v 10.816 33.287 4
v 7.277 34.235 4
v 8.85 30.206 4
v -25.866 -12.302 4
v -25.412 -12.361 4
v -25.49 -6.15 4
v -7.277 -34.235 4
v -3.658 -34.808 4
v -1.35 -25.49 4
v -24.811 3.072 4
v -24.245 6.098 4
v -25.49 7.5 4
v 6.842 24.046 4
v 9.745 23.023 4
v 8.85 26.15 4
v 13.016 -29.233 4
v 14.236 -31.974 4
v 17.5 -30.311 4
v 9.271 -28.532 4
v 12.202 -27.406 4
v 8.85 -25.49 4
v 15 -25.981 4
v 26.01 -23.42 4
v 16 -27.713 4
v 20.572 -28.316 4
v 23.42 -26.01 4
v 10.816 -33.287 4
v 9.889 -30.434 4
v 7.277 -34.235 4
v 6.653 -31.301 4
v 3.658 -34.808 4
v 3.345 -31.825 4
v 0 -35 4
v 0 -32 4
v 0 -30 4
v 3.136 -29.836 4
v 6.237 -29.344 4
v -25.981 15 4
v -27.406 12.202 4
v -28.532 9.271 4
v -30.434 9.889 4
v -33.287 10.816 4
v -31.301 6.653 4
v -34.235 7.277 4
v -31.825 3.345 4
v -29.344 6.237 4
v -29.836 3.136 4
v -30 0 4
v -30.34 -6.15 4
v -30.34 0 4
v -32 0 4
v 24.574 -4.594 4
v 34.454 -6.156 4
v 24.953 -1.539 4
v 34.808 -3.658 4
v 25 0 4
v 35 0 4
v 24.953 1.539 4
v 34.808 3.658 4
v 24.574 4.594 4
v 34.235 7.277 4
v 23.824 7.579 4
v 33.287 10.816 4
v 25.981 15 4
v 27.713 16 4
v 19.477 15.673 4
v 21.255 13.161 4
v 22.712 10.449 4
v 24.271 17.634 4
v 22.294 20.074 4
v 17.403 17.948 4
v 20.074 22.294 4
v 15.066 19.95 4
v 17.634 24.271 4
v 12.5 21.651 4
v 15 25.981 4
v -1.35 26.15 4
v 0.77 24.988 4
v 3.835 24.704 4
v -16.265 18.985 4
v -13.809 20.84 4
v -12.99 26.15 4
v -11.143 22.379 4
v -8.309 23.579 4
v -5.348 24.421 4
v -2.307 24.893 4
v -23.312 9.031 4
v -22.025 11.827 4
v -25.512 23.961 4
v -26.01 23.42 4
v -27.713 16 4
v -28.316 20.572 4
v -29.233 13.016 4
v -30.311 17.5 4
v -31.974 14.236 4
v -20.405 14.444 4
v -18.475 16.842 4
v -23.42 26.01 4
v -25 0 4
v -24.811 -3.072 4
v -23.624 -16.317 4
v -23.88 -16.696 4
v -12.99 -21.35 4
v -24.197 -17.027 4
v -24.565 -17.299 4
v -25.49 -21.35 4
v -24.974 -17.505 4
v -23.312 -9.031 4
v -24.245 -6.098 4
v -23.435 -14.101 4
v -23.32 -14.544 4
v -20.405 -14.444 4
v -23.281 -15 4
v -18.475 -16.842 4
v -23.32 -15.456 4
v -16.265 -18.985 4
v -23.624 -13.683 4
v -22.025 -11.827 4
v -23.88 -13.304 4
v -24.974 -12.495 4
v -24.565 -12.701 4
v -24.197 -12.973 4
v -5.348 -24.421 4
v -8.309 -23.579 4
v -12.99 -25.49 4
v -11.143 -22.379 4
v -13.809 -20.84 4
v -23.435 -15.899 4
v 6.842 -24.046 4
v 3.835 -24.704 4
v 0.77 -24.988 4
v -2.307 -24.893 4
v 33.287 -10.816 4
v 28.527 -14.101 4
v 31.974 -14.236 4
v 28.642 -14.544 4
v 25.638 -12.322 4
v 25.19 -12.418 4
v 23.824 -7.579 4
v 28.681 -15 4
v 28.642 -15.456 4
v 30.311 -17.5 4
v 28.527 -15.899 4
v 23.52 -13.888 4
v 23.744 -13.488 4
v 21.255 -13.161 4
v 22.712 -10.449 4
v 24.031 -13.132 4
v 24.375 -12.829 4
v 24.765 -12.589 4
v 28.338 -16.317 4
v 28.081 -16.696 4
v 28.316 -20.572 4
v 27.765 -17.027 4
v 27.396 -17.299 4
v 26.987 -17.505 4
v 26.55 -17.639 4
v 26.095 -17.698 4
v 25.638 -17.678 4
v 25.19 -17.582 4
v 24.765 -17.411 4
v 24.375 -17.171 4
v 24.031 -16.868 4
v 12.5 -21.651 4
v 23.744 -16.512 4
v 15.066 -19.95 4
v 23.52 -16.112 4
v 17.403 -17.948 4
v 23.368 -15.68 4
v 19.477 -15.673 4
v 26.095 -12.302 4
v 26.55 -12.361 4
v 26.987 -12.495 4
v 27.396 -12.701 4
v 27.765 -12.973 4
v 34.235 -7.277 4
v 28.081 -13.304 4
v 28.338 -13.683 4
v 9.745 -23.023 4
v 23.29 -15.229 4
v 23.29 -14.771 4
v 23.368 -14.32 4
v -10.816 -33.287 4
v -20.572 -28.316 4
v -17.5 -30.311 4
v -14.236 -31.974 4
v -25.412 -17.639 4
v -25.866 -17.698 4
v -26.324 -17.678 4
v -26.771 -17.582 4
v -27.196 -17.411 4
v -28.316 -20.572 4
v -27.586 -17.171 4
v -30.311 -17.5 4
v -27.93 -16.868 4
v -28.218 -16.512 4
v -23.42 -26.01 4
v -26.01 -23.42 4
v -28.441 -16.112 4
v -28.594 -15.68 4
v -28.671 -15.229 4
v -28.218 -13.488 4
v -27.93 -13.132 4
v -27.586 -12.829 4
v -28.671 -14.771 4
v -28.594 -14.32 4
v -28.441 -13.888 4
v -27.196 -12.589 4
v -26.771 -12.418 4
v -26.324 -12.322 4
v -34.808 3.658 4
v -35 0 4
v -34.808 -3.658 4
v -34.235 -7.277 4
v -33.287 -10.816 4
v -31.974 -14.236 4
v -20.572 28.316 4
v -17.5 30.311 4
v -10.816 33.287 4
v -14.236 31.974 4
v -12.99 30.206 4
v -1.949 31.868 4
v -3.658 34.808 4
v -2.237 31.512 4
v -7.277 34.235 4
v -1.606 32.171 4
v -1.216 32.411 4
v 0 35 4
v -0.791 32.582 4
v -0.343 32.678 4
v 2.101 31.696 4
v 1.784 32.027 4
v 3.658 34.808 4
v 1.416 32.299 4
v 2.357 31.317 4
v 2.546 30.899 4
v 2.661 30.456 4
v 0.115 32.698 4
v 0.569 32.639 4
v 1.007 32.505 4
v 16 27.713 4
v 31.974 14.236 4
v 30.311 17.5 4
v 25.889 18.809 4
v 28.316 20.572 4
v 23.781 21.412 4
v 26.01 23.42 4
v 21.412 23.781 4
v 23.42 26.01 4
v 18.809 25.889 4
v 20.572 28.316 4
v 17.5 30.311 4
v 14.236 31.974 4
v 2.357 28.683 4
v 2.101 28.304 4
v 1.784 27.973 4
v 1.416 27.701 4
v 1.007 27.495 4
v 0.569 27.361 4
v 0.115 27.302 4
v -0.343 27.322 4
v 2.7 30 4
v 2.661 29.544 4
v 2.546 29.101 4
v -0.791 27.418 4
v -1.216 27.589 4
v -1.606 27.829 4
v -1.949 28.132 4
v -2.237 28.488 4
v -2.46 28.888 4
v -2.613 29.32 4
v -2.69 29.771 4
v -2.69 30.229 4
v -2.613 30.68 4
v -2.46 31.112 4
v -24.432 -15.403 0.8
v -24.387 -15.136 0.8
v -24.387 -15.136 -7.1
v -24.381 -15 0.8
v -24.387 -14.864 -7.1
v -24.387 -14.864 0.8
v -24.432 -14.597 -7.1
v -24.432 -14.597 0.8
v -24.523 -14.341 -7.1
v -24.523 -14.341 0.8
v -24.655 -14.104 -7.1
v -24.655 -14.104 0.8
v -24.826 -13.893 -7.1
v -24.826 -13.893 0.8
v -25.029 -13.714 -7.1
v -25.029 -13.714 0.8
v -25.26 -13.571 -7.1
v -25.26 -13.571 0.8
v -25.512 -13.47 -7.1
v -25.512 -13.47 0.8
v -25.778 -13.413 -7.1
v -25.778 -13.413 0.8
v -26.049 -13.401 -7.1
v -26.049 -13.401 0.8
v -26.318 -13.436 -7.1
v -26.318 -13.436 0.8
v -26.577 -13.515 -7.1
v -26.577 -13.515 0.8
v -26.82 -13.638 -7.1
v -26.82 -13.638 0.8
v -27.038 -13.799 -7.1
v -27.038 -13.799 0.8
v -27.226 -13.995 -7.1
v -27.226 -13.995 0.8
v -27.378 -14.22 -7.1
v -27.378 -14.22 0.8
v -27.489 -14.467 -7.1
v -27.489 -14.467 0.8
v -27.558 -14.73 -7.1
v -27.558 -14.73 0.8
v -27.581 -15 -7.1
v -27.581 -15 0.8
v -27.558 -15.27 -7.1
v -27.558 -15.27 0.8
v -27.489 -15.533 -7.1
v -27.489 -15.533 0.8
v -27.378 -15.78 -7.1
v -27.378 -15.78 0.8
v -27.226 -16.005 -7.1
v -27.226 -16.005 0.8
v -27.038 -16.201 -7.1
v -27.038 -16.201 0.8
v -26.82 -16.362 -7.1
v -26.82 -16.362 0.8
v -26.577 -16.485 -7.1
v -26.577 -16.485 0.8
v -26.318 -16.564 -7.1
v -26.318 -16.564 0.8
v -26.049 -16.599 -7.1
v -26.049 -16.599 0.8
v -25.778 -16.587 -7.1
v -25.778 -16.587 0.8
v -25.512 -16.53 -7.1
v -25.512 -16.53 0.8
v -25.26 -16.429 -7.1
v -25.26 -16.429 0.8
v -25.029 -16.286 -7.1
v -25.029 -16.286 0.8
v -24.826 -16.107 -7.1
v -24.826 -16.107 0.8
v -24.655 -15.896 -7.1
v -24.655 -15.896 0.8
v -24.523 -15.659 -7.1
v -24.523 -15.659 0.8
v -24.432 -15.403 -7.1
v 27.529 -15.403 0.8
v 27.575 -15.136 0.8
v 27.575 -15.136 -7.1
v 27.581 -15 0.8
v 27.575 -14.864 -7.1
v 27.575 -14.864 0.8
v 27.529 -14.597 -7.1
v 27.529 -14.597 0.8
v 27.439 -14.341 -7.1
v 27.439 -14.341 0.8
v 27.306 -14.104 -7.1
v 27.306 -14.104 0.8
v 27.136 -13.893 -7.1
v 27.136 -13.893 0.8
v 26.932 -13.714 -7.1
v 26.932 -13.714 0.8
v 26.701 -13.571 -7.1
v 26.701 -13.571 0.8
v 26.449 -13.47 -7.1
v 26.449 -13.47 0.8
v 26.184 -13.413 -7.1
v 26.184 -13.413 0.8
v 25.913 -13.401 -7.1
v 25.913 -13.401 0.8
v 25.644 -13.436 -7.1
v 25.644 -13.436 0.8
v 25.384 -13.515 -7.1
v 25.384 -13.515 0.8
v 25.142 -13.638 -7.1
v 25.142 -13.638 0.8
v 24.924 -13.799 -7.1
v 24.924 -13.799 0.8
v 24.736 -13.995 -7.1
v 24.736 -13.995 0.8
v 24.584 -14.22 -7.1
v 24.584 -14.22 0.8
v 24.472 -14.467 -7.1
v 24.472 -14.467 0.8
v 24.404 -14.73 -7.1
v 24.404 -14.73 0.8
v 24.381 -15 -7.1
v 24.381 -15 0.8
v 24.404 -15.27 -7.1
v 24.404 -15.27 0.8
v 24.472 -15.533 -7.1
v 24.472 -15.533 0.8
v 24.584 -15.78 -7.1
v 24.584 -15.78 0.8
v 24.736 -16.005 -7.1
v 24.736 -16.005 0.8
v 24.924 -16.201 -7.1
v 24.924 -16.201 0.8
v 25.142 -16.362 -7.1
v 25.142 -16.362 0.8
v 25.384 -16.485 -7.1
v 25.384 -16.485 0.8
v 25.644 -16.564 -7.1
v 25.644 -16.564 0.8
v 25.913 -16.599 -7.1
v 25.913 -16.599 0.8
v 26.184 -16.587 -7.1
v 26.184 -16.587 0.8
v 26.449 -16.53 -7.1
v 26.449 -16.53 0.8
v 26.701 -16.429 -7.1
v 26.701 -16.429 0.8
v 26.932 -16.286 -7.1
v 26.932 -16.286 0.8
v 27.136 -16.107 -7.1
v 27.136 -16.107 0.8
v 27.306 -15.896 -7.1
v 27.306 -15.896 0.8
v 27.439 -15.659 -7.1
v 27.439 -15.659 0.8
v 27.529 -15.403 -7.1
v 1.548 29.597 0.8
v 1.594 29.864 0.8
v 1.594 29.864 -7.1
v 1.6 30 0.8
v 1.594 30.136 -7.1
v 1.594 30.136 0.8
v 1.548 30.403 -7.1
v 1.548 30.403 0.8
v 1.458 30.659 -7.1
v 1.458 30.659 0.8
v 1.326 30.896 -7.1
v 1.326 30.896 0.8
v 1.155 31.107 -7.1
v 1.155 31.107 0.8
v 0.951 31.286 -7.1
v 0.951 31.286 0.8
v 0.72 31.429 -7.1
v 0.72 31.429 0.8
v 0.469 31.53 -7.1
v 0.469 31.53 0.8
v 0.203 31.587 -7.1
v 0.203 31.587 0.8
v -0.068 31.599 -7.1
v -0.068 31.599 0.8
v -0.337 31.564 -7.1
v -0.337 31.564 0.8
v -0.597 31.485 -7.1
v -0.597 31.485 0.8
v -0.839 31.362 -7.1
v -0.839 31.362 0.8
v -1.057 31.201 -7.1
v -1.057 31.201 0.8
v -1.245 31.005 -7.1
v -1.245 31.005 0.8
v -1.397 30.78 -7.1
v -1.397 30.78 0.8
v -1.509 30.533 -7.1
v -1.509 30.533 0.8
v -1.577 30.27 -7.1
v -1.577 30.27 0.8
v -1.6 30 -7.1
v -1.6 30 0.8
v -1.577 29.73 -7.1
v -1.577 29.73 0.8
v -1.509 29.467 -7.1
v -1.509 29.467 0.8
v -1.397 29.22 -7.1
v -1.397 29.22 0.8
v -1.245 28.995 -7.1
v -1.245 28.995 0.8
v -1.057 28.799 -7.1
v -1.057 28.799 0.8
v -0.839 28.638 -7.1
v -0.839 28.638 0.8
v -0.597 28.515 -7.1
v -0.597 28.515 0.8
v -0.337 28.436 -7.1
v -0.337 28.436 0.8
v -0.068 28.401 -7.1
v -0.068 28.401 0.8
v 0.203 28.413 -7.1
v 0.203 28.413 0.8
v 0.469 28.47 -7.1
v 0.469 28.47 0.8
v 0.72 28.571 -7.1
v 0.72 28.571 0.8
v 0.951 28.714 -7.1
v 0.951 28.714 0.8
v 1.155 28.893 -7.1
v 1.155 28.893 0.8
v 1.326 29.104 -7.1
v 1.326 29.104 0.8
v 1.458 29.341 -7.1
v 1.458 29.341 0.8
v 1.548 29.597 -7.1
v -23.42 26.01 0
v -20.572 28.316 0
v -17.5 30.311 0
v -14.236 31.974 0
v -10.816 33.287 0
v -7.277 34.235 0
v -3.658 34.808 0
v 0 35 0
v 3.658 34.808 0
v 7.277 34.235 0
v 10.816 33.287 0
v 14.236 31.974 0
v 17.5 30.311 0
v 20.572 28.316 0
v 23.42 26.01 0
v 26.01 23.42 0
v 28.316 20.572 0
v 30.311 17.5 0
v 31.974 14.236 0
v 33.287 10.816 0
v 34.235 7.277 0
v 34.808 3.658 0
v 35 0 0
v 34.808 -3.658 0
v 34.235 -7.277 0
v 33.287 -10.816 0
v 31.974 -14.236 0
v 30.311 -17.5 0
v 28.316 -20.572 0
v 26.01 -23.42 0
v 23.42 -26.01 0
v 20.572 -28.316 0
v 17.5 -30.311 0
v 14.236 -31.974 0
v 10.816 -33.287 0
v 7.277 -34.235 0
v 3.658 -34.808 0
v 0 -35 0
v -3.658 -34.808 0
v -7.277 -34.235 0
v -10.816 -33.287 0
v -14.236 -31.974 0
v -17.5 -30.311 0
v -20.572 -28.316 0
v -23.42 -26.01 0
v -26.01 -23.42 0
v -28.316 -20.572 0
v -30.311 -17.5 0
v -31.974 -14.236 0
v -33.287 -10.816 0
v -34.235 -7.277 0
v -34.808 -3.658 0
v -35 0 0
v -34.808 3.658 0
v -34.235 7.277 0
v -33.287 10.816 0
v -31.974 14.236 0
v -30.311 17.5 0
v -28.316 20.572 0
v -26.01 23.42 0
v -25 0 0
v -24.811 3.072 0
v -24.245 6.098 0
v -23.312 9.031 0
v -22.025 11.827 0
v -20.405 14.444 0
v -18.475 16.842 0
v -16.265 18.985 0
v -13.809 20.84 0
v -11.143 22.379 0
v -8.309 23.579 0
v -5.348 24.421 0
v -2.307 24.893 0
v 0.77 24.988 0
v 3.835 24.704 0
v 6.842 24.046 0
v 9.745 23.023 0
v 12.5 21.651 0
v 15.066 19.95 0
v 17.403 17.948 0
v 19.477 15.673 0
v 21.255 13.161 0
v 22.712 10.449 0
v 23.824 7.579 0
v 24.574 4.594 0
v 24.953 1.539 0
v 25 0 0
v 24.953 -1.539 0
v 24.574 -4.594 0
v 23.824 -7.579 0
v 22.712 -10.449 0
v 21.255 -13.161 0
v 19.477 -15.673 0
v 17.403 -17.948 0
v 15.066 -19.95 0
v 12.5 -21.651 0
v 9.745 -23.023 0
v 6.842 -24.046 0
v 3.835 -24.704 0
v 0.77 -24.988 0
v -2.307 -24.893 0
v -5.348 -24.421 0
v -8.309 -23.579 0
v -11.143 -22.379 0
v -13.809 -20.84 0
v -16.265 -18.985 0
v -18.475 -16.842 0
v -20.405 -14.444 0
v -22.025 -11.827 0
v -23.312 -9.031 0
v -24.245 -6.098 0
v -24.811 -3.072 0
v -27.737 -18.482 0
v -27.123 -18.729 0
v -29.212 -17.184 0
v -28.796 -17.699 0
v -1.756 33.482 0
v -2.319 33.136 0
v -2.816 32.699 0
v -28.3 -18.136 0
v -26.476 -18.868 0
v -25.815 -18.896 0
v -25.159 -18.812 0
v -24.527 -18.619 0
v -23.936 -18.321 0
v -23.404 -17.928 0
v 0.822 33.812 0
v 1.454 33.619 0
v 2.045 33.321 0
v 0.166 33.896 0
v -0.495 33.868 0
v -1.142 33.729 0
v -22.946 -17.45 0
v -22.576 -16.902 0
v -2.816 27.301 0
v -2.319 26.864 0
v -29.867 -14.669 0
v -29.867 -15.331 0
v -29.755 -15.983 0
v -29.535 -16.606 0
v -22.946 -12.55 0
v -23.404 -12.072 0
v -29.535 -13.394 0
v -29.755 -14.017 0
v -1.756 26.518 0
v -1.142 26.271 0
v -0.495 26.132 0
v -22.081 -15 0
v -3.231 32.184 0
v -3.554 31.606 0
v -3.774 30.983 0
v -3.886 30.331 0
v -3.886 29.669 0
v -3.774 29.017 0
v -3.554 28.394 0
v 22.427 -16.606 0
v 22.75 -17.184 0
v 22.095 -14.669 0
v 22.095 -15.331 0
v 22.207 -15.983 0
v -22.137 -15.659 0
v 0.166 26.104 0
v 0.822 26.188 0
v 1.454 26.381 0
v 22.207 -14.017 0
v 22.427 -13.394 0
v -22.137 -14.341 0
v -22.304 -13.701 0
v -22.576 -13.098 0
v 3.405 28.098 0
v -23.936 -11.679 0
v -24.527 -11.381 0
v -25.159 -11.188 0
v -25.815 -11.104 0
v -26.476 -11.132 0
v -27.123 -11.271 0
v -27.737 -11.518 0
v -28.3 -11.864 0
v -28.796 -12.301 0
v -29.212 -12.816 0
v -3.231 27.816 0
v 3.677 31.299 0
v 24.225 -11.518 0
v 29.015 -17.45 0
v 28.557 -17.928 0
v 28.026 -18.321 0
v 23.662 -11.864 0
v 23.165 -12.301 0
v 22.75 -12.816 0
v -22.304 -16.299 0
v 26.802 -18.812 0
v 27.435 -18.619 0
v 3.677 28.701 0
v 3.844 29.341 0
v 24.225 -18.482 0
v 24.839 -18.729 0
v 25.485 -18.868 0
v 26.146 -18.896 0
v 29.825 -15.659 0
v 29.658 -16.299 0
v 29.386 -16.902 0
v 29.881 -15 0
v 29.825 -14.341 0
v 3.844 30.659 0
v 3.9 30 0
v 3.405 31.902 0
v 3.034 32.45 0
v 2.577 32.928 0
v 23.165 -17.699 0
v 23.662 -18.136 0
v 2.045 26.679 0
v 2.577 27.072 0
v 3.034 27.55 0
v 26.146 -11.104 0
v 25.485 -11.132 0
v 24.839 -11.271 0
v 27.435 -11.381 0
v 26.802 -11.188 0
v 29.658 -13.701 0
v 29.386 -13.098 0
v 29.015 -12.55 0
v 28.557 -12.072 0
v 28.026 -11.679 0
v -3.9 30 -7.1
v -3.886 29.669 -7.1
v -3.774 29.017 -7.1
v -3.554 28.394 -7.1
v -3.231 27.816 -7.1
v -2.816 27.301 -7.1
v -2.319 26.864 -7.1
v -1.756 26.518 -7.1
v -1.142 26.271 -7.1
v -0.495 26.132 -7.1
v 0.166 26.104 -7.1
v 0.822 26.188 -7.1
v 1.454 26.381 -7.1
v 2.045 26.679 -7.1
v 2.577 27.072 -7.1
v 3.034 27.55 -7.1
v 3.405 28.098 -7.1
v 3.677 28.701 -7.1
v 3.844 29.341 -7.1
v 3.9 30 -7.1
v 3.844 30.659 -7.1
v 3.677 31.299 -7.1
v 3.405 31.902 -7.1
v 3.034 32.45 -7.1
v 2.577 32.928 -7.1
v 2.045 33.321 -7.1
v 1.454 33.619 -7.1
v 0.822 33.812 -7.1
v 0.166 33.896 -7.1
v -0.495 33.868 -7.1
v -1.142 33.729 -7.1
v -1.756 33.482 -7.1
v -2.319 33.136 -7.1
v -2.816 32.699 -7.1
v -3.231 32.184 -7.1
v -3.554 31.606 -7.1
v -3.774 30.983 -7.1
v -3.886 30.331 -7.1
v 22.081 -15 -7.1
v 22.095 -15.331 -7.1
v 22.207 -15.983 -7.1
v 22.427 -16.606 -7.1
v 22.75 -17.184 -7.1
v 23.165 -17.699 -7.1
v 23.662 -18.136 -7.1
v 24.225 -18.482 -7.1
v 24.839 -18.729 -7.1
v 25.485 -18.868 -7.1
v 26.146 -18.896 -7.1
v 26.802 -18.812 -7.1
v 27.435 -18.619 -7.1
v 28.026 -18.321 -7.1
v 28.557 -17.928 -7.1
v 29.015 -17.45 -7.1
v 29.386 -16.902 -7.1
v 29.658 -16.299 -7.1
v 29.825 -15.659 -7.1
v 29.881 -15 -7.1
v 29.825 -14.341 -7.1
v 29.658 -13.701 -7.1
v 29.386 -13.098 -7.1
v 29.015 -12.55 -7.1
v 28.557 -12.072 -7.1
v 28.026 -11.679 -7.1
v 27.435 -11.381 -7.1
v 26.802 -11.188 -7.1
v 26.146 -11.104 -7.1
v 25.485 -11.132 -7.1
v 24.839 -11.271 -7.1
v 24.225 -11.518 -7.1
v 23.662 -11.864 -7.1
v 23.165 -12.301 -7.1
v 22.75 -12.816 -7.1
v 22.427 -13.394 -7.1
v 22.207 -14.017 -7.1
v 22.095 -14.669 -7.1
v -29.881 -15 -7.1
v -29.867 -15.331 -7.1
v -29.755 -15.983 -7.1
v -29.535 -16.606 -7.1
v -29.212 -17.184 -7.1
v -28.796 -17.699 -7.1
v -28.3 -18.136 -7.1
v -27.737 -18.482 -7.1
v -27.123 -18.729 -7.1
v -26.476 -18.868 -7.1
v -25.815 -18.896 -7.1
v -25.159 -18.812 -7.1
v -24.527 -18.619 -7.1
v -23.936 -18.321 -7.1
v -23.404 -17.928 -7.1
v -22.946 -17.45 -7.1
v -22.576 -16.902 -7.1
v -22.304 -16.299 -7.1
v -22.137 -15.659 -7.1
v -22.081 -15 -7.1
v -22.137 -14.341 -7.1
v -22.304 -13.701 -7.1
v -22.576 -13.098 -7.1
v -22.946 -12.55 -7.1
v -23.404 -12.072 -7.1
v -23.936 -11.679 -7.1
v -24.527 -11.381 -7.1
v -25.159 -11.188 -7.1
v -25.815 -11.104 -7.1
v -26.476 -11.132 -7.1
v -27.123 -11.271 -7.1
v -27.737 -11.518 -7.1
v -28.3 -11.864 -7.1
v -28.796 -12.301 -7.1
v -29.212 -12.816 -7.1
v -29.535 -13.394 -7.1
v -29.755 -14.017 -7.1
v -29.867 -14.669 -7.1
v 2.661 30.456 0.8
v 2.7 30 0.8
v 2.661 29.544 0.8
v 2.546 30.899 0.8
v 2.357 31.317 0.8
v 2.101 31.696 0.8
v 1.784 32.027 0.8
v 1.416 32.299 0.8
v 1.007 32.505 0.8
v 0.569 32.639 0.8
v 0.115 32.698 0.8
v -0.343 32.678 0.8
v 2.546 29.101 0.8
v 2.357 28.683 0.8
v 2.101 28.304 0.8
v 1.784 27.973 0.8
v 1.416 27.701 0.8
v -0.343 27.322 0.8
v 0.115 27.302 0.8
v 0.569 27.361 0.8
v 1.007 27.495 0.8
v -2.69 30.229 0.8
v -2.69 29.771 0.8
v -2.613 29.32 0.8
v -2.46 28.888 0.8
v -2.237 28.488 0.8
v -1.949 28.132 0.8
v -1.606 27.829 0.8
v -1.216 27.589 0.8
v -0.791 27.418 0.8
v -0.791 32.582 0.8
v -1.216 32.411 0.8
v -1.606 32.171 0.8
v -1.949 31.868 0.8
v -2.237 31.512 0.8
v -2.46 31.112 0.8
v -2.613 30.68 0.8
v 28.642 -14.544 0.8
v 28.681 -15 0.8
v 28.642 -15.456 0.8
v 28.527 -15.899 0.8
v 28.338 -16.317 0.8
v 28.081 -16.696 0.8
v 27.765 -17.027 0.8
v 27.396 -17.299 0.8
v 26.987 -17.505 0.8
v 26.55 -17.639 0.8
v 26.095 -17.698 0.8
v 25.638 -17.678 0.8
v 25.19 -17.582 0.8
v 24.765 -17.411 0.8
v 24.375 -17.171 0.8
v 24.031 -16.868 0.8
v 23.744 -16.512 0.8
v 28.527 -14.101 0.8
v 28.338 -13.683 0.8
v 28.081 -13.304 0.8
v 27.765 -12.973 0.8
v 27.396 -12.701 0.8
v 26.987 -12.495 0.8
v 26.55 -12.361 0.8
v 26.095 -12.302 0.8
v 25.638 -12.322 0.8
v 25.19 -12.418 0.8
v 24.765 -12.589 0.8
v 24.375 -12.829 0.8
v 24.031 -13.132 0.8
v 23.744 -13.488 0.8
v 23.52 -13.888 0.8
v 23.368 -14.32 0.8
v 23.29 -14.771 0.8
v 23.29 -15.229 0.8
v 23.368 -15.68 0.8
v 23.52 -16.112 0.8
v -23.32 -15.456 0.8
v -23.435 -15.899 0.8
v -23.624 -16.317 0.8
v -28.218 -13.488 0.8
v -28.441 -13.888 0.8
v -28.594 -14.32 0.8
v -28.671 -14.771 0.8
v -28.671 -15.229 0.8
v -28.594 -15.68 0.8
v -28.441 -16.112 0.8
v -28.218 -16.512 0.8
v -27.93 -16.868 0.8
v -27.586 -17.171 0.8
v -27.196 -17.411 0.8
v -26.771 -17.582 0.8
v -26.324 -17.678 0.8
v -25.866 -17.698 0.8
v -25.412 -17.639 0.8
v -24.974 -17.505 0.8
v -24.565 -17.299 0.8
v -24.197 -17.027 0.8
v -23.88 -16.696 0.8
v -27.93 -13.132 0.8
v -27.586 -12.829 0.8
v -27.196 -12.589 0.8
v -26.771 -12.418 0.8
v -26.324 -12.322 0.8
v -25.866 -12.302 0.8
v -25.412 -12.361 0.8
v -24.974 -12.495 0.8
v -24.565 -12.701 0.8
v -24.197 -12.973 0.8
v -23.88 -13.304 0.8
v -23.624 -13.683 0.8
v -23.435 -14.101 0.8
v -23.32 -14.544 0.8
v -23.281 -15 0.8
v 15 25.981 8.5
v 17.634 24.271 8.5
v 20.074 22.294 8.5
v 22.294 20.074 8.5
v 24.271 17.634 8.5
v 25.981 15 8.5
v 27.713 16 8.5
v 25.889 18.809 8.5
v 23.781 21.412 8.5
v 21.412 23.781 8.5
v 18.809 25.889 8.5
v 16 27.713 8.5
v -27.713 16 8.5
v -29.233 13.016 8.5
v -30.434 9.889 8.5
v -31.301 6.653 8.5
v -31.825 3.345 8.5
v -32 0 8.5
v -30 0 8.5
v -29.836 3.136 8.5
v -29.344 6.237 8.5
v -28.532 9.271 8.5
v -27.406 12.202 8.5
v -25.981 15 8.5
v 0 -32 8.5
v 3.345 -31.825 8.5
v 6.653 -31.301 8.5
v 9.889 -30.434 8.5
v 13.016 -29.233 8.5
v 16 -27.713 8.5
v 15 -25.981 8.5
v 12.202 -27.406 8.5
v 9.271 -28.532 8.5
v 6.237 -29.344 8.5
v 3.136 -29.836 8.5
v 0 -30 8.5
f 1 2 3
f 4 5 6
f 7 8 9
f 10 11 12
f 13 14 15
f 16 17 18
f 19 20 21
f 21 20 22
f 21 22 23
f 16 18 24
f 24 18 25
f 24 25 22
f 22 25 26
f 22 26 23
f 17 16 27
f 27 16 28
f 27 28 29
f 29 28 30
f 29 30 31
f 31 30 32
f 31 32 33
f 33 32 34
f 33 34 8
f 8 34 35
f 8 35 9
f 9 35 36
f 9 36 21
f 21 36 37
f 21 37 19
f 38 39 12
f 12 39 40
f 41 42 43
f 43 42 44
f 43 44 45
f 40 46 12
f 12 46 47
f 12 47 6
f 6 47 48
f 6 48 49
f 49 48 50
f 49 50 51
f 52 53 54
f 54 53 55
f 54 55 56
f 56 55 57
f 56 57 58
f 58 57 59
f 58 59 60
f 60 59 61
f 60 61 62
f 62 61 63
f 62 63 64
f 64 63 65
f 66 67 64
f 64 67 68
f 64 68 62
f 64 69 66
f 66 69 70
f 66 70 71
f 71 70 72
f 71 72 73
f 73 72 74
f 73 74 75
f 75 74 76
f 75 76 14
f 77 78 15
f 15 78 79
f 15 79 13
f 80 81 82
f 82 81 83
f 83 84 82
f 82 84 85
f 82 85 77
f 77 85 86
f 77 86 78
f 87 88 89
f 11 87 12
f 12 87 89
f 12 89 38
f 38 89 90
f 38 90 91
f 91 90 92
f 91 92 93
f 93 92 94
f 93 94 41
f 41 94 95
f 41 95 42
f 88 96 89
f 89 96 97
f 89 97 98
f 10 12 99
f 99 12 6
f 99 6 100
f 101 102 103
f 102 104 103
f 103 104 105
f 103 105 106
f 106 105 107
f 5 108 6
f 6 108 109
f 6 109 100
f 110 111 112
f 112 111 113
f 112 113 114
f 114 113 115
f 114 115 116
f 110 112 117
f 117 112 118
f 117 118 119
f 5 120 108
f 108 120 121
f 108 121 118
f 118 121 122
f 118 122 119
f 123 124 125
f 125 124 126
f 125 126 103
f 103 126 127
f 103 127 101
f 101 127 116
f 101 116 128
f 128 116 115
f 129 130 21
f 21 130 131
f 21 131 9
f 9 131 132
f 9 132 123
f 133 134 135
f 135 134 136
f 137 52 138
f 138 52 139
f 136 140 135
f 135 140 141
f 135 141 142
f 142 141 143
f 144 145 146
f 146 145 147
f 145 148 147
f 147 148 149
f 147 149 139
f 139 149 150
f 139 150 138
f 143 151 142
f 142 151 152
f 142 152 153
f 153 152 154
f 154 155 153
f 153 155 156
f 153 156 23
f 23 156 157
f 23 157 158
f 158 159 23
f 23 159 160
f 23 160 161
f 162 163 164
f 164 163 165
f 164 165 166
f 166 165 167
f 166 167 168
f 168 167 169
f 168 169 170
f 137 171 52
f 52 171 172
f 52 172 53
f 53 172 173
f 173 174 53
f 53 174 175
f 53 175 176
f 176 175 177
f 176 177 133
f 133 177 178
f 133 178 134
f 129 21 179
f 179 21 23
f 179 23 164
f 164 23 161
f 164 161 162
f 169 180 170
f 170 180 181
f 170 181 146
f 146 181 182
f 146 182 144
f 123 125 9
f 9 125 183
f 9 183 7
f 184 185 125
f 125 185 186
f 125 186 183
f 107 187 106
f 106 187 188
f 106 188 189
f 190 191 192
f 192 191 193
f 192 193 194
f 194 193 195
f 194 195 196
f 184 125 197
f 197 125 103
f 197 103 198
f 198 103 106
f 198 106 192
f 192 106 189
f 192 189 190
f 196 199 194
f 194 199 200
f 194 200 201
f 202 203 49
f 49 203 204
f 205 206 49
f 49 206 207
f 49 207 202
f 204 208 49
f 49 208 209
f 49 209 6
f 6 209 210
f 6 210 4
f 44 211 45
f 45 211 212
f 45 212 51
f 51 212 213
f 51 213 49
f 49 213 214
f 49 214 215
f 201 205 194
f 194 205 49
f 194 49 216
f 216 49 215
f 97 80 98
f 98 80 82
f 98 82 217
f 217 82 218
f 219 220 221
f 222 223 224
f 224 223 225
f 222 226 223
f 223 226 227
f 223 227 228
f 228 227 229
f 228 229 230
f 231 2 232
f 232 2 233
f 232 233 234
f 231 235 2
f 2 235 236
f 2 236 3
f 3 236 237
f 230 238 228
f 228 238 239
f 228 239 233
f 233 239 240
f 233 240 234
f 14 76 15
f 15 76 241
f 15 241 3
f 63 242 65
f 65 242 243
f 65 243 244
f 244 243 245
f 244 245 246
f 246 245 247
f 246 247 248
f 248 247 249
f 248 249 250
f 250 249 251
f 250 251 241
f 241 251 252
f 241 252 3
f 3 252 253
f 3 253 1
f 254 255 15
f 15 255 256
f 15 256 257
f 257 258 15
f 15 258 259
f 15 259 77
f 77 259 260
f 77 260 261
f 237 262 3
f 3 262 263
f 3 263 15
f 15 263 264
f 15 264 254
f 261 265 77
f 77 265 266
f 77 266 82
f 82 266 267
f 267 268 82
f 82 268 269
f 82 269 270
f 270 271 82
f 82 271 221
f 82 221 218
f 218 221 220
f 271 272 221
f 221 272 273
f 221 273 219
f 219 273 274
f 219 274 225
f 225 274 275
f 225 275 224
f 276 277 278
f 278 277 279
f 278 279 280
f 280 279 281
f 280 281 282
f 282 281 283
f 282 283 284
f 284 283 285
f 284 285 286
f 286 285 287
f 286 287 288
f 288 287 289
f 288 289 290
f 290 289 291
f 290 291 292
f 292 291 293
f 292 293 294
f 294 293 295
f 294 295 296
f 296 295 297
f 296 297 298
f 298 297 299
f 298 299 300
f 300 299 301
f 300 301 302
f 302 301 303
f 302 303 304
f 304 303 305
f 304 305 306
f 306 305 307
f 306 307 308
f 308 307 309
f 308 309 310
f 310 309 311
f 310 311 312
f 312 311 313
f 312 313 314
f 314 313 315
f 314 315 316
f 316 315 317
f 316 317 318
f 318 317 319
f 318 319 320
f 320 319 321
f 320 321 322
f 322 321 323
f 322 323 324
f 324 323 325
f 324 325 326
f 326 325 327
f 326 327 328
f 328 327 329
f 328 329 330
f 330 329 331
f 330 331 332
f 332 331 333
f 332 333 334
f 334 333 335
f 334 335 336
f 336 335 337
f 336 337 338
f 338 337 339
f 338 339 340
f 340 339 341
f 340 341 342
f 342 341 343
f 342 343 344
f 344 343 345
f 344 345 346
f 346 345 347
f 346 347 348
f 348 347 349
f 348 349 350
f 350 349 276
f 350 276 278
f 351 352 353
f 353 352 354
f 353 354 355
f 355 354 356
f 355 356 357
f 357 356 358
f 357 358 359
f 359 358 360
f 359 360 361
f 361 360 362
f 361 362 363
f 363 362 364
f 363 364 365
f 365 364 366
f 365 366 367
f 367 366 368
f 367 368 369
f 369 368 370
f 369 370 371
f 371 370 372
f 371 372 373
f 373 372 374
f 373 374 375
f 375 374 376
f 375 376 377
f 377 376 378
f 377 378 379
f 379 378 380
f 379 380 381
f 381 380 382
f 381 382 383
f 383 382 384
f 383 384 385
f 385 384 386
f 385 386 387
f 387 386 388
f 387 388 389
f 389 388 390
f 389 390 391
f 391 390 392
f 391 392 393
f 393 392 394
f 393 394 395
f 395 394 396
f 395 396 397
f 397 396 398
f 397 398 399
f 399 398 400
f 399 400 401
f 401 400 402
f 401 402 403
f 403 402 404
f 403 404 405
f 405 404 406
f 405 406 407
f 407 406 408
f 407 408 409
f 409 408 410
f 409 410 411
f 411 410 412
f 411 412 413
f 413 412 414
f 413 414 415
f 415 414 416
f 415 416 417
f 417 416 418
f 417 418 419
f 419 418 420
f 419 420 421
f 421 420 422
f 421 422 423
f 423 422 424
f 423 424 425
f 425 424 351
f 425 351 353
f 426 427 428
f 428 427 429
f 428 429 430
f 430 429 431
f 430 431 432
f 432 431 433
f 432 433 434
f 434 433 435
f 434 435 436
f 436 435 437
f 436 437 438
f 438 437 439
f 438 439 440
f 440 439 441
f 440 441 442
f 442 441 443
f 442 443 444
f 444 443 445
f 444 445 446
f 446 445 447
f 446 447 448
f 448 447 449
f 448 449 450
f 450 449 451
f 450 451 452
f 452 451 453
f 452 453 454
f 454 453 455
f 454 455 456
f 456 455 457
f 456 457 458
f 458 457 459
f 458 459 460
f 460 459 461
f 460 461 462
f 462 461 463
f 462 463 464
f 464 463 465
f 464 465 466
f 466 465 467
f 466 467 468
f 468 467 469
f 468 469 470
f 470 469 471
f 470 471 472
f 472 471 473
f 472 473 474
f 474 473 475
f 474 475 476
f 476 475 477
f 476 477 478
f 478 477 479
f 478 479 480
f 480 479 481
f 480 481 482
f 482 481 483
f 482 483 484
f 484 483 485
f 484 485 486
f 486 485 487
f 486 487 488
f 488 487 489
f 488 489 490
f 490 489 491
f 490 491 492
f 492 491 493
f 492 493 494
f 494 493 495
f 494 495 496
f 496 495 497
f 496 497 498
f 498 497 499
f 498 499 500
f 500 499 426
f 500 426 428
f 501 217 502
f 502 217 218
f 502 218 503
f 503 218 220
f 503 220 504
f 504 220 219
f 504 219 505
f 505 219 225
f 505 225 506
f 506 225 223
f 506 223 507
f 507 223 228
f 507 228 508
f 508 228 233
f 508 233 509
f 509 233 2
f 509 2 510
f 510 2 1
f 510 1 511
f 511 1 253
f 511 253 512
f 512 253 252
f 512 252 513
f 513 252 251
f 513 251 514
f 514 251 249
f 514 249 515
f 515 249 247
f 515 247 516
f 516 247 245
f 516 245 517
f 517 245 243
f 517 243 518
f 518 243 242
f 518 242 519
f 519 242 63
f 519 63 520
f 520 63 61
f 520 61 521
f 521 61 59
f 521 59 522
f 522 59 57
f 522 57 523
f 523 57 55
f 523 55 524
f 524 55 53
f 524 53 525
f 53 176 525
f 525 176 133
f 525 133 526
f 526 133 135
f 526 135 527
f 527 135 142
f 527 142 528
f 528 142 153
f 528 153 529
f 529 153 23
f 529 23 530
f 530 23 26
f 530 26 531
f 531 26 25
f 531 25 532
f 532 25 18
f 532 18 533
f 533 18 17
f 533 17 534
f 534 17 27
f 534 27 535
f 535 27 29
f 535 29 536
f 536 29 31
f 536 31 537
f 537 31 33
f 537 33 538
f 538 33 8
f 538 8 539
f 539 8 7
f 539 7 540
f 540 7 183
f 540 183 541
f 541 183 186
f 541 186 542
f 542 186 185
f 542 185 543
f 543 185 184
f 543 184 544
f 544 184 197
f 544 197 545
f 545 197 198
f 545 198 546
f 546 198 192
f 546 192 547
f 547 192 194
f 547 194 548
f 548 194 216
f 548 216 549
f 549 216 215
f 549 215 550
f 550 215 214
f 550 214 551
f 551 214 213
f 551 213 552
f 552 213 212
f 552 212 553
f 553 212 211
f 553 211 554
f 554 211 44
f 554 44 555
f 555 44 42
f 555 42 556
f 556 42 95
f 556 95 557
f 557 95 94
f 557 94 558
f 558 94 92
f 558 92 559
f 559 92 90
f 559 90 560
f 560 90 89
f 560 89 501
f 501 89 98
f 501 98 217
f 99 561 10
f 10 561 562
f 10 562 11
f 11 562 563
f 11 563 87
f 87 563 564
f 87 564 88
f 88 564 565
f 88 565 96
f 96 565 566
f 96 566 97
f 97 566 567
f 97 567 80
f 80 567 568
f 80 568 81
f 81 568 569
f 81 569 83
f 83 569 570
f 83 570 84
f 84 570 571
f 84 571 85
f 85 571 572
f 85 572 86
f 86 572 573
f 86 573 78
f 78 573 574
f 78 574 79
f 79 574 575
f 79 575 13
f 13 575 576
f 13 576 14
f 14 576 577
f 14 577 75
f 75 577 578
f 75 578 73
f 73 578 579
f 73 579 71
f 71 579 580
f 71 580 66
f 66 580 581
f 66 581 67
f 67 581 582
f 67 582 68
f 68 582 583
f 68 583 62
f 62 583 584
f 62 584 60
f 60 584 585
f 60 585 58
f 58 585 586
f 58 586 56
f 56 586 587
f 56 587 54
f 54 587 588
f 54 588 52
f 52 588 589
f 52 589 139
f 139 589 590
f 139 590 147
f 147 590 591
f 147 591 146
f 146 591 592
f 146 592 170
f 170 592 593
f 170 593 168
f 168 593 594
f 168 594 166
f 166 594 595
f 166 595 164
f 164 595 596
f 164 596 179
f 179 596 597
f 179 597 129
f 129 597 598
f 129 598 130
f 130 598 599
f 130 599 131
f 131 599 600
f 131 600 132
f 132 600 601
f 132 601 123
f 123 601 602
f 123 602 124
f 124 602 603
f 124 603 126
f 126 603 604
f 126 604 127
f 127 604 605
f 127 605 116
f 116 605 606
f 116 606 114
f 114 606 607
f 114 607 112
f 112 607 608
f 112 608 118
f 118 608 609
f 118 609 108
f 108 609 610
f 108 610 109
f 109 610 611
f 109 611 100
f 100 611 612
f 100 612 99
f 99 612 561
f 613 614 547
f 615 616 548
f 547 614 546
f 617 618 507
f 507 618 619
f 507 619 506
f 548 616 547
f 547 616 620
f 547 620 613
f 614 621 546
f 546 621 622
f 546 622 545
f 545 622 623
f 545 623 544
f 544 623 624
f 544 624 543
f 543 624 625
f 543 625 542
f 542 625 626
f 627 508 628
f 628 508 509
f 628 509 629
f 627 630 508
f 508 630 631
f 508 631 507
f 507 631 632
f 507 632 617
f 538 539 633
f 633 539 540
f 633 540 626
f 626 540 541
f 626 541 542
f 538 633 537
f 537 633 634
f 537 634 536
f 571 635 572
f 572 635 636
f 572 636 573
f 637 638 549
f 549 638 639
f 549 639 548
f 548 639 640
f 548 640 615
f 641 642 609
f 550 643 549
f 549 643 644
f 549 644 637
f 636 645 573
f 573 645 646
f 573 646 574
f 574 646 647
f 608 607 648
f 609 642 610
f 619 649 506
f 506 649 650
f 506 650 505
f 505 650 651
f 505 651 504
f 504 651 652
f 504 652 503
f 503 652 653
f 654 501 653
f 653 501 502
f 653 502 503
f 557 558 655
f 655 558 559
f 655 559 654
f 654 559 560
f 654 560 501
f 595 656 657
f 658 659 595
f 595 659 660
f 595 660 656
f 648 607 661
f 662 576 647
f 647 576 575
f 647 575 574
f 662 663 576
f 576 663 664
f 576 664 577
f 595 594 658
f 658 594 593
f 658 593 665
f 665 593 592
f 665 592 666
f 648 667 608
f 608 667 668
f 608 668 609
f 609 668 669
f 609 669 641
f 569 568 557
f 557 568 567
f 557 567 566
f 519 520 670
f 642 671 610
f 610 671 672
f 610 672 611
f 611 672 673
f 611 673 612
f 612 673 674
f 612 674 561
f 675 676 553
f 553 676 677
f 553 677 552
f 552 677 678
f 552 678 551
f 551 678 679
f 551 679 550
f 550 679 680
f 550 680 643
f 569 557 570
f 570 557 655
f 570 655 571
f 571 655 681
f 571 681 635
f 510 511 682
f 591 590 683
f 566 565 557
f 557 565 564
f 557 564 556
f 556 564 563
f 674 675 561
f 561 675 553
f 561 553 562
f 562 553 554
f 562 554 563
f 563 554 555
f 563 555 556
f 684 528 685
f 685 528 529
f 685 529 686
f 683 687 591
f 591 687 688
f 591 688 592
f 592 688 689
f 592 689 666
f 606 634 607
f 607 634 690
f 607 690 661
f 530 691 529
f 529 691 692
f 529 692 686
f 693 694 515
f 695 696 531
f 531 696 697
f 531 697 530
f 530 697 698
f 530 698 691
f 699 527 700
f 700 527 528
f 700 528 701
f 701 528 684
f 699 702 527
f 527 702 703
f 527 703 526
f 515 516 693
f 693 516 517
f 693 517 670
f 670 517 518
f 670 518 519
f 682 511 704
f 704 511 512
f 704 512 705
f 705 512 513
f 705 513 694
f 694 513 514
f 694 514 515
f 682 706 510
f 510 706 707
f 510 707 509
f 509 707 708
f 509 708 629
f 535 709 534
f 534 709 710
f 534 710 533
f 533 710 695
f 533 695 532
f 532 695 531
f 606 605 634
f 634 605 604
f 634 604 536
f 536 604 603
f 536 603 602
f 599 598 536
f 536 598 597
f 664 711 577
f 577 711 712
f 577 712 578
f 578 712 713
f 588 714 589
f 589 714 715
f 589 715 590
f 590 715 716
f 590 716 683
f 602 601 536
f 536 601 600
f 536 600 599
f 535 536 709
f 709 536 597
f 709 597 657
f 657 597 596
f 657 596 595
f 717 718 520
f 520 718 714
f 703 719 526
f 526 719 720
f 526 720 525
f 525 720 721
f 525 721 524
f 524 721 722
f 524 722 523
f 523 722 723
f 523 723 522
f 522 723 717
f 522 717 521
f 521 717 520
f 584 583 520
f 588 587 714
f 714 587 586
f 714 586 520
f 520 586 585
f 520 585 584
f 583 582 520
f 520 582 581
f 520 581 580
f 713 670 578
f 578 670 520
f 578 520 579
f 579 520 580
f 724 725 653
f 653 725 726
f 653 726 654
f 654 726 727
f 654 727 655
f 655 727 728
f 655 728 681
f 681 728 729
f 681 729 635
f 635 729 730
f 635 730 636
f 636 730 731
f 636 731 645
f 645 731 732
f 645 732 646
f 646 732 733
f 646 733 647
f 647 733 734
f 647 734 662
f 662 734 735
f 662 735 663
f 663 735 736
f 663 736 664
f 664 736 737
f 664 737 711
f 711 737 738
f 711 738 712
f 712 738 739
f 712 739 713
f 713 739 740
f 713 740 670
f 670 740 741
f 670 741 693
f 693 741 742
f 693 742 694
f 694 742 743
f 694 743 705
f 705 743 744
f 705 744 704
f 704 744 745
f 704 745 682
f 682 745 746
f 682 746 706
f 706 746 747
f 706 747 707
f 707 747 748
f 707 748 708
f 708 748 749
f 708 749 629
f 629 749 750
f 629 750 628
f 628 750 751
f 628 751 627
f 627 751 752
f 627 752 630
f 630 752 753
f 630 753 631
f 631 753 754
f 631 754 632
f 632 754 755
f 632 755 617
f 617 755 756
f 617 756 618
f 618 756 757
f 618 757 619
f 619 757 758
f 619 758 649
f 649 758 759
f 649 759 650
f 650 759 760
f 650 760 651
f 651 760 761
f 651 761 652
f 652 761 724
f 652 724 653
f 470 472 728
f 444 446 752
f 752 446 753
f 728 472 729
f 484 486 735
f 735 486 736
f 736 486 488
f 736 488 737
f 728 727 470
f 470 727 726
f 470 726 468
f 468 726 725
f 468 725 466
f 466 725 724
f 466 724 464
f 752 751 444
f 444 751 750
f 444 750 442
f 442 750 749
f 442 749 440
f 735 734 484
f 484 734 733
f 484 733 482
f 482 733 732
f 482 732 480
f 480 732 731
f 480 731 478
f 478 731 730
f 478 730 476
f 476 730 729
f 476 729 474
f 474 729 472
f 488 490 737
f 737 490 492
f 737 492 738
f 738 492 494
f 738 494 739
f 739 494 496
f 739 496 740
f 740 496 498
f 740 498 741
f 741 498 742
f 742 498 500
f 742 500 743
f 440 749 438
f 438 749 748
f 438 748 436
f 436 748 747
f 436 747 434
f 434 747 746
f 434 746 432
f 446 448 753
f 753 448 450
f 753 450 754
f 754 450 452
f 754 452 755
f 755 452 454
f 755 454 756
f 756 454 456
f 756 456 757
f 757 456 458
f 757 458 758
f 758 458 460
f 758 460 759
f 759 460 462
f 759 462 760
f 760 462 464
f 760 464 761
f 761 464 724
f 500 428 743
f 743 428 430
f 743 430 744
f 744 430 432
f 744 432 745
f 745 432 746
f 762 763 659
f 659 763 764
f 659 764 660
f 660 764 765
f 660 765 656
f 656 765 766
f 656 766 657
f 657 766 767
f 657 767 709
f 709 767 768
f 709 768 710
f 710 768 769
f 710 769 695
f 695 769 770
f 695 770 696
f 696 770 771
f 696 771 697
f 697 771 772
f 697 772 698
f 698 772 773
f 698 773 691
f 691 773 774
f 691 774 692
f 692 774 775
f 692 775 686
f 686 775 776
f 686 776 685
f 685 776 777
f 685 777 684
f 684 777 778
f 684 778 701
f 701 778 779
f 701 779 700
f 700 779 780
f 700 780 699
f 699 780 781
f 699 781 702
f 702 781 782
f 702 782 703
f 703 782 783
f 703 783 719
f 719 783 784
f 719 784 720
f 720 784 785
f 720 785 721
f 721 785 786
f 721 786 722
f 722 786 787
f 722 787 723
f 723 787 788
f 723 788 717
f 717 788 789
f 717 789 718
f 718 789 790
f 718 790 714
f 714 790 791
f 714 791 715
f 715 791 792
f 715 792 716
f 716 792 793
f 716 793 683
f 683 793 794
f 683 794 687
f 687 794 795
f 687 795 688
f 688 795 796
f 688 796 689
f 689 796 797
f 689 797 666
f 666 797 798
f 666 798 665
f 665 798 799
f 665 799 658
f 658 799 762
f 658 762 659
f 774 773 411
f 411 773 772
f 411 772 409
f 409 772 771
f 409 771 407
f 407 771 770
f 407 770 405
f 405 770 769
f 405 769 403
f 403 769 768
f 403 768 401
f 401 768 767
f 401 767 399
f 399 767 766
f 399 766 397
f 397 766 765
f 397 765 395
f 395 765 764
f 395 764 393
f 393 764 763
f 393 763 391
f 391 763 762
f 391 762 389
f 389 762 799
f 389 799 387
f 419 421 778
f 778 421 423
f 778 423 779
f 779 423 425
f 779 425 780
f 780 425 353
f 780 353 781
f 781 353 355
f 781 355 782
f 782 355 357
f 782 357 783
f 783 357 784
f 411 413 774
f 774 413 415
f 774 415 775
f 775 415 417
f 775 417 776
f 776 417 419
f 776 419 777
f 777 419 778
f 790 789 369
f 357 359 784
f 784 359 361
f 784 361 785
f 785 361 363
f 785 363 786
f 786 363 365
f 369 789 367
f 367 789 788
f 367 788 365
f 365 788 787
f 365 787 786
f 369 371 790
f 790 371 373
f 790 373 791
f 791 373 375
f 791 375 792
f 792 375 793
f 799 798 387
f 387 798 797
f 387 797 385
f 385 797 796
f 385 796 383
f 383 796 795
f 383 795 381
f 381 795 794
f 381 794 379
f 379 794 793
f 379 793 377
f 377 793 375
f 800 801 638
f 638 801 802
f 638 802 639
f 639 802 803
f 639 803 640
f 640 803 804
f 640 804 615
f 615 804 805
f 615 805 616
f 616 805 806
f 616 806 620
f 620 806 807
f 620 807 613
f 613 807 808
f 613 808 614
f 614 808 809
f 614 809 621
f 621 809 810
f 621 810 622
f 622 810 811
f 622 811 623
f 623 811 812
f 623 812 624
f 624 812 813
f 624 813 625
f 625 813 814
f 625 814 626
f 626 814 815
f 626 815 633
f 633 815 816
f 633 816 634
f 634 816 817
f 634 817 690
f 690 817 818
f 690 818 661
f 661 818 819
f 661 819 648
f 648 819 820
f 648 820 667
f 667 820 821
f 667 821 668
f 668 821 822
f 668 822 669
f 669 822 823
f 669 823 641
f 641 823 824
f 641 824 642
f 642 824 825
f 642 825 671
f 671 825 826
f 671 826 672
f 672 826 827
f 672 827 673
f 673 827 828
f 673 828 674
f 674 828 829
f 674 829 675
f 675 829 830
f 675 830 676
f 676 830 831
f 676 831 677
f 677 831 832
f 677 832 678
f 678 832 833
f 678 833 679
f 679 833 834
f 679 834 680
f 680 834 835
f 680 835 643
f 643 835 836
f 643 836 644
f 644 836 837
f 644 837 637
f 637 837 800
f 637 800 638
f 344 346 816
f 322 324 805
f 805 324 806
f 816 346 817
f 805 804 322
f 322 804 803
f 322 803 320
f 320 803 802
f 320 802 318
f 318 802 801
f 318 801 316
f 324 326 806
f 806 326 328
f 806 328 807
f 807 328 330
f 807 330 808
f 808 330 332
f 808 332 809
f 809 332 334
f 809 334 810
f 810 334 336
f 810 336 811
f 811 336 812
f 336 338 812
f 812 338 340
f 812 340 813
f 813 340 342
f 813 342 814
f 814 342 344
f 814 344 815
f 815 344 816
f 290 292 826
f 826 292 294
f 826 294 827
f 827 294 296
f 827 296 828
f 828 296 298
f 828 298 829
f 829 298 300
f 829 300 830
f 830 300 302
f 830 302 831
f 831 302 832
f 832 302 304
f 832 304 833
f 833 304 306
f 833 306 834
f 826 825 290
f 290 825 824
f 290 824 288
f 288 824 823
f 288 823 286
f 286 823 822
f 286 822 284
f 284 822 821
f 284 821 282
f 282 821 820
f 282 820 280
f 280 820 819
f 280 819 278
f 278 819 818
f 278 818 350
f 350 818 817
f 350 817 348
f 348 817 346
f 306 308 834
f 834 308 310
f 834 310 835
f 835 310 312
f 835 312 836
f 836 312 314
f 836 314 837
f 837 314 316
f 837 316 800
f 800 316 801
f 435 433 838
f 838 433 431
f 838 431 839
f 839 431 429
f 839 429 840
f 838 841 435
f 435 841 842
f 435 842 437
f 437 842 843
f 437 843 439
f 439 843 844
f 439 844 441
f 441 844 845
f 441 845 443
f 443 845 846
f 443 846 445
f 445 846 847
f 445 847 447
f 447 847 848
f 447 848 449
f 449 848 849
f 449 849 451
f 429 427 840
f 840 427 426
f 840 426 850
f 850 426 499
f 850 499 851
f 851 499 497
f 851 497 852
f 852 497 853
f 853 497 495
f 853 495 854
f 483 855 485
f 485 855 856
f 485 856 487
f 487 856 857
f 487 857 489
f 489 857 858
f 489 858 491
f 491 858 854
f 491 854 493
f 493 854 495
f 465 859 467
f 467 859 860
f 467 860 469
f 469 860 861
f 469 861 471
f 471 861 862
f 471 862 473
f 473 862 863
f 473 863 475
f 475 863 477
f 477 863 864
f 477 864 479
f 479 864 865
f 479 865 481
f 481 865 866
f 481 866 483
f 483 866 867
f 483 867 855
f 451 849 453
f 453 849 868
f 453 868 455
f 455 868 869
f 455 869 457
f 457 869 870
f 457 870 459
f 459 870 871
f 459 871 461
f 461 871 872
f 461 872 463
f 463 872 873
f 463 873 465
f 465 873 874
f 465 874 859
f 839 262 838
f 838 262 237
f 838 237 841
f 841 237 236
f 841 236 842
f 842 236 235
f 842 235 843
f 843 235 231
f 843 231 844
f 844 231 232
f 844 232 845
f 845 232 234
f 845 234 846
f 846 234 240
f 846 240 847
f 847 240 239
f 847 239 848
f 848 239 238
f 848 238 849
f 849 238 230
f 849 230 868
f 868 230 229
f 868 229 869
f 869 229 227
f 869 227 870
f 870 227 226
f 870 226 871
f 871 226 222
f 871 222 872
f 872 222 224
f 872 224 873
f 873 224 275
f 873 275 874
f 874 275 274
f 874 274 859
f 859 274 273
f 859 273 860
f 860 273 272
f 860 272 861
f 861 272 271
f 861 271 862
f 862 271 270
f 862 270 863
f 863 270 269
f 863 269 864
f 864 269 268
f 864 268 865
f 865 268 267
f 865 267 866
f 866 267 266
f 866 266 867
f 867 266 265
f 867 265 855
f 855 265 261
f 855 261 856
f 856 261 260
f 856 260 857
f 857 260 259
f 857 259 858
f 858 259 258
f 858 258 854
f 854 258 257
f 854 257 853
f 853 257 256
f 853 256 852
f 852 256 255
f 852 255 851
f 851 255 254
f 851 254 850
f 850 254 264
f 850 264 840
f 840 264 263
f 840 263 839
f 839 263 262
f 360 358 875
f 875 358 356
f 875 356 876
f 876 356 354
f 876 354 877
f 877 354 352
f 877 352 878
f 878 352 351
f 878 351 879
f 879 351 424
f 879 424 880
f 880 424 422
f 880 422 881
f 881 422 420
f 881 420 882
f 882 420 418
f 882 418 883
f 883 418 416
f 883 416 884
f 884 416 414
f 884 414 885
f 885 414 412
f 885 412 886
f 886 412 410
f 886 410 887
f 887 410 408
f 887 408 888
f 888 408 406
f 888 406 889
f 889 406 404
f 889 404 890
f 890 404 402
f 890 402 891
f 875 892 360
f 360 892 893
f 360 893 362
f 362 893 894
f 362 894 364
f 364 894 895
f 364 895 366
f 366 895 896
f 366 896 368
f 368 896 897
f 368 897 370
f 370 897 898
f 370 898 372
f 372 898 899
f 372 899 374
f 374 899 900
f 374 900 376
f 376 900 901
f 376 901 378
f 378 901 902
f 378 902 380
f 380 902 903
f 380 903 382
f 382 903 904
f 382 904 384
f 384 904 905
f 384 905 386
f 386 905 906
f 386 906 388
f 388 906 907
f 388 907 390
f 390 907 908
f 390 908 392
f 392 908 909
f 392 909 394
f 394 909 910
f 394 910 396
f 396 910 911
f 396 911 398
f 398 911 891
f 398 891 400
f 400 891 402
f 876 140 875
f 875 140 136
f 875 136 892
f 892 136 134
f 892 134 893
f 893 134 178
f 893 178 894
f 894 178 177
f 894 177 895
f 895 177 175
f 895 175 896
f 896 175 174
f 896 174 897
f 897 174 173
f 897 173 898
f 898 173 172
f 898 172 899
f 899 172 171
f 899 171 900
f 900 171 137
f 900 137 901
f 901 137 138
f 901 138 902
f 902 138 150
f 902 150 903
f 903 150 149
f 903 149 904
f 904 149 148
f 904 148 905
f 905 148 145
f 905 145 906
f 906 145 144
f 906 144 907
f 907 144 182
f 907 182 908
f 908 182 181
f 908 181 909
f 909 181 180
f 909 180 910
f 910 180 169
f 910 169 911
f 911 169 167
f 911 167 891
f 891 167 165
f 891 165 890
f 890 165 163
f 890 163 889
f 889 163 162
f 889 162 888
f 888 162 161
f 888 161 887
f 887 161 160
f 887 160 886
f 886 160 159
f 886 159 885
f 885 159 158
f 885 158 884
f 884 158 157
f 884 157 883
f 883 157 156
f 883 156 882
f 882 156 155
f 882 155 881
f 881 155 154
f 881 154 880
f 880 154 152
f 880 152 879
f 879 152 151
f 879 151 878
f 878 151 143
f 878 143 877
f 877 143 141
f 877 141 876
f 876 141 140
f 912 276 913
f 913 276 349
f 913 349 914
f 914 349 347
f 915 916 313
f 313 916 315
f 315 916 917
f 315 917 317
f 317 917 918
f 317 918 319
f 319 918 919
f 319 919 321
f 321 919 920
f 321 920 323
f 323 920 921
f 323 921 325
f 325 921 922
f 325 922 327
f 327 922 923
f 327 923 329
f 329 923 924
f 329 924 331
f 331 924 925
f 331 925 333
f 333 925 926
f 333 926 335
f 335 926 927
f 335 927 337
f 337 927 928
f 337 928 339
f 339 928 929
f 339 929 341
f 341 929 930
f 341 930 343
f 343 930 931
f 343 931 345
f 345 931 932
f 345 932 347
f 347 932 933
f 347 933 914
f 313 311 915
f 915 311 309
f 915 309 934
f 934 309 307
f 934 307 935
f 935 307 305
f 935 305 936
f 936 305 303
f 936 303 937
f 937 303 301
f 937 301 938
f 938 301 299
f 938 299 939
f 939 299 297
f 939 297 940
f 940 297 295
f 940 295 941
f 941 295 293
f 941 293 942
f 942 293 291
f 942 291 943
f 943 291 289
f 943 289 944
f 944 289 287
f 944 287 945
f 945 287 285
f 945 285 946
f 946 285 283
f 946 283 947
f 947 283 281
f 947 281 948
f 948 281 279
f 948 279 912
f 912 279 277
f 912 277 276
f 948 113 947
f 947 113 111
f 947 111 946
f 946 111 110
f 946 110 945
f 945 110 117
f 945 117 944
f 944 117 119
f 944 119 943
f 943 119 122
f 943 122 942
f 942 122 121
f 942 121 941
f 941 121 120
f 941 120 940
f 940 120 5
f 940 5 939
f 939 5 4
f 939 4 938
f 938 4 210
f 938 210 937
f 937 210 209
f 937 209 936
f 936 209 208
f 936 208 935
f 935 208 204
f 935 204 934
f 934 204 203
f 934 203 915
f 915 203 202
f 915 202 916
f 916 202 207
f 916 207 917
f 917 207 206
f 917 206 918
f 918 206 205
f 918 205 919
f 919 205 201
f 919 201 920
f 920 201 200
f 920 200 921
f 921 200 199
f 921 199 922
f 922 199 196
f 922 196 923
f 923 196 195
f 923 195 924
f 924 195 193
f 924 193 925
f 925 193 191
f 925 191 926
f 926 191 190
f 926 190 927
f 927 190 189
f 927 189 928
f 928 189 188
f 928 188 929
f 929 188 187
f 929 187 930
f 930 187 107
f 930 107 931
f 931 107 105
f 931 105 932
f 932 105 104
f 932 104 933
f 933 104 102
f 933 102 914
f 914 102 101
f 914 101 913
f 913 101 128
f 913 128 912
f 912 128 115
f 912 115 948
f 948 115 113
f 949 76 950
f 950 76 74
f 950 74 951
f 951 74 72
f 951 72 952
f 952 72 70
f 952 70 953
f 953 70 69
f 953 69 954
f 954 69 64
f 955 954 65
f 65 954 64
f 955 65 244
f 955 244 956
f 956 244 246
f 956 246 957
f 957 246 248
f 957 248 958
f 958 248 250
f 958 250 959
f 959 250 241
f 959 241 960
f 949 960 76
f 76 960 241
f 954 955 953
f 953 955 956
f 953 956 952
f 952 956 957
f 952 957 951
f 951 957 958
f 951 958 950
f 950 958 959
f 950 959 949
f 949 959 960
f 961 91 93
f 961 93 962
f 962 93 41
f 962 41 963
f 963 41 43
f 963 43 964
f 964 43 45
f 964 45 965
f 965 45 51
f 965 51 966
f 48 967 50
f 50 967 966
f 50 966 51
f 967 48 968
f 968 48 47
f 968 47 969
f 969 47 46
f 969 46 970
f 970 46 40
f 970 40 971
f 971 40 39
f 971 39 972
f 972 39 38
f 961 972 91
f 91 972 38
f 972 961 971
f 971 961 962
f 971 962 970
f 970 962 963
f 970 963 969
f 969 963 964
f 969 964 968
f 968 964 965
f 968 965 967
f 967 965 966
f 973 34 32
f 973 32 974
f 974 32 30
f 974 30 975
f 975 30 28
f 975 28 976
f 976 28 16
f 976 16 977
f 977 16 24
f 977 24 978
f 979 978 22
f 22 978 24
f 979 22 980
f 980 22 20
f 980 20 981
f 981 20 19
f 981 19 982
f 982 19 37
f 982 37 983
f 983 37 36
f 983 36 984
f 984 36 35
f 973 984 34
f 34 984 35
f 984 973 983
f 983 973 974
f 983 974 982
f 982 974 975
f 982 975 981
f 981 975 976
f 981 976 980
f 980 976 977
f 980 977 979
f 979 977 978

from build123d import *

# Parameters (mm, degrees)
SKETCH1_R           = 35
SKETCH1_R_2         = 30
SKETCH1_R_3         = 25
BOSS_EXTRUDE1_DEPTH = 4
SKETCH2_R           = 3.9
BOSS_EXTRUDE2_DEPTH = 7.1
SKETCH3_R           = 1.6
CUT_EXTRUDE1_DEPTH  = 15
SKETCH4_R           = 2.7
CUT_EXTRUDE2_DEPTH  = 3.2
BOSS_EXTRUDE3_DEPTH = 4.5
BOSS_EXTRUDE4_DEPTH = 4.5


with BuildPart() as part:
    # Sketch1 → Boss-Extrude1 (new body)
    with BuildSketch(Plane.XY):
        Circle(SKETCH1_R)
        Circle(SKETCH1_R_2, mode=Mode.SUBTRACT)
        Circle(SKETCH1_R_2)
        Circle(SKETCH1_R_3, mode=Mode.SUBTRACT)
    extrude(amount=BOSS_EXTRUDE1_DEPTH)

    # Sketch2 → Boss-Extrude2 (add)
    with BuildSketch(Plane(origin=(0, 0, 0), x_dir=(-1, 0, 0), z_dir=(0, 0, -1))):
        with Locations((0, 30)):
            Circle(SKETCH2_R)
        with Locations((25.980762114, -15)):
            Circle(SKETCH2_R)
        with Locations((-25.980762114, -15)):
            Circle(SKETCH2_R)
    extrude(amount=BOSS_EXTRUDE2_DEPTH)

    # Sketch3 → Cut-Extrude1 (cut)
    with BuildSketch(Plane(origin=(0, 0, -7.1), x_dir=(-1, 0, 0), z_dir=(0, 0, -1))):
        with Locations((0, 30)):
            Circle(SKETCH3_R)
        with Locations((25.980762114, -15)):
            Circle(SKETCH3_R)
        with Locations((-25.980762114, -15)):
            Circle(SKETCH3_R)
    extrude(amount=-CUT_EXTRUDE1_DEPTH, mode=Mode.SUBTRACT)

    # Sketch4 → Cut-Extrude2 (cut)
    with BuildSketch(Plane.XY.offset(4)):
        with Locations((0, 30)):
            Circle(SKETCH4_R)
        with Locations((25.980762114, -15)):
            Circle(SKETCH4_R)
        with Locations((-25.980762114, -15)):
            Circle(SKETCH4_R)
    extrude(amount=-CUT_EXTRUDE2_DEPTH, mode=Mode.SUBTRACT)

    # Sketch6 → Boss-Extrude3 (add)
    with BuildSketch(Plane.XY.offset(4)):
        with BuildLine():
            Line((25.980762114, 15), (27.712812921, 16))
            ThreePointArc((27.712812921, 16), (22.627416998, 22.627416998), (16, 27.712812921))
            Line((16, 27.712812921), (15, 25.980762114))
            ThreePointArc((15, 25.980762114), (21.213203436, 21.213203436), (25.980762114, 15))
        make_face()
    extrude(amount=BOSS_EXTRUDE3_DEPTH)

    # Sketch7 → Boss-Extrude4 (add)
    with BuildSketch(Plane.XY.offset(4)):
        with BuildLine():
            Line((16, -27.712812921), (15, -25.980762114))
            ThreePointArc((15, -25.980762114), (7.764571353, -28.977774789), (0, -30))
            Line((0, -30), (0, -32))
            ThreePointArc((0, -32), (8.282209443, -30.909626441), (16, -27.712812921))
        make_face()
        with BuildLine():
            Line((25.980762114, 15), (27.712812921, 16))
            ThreePointArc((27.712812921, 16), (22.627416998, 22.627416998), (16, 27.712812921))
            Line((16, 27.712812921), (15, 25.980762114))
            ThreePointArc((15, 25.980762114), (21.213203436, 21.213203436), (25.980762114, 15))
        make_face()
        with BuildLine():
            Line((-32, 0), (-30, 0))
            ThreePointArc((-30, 0), (-28.977774789, 7.764571353), (-25.980762114, 15))
            Line((-25.980762114, 15), (-27.712812921, 16))
            ThreePointArc((-27.712812921, 16), (-30.909626441, 8.282209443), (-32, 0))
        make_face()
    extrude(amount=BOSS_EXTRUDE4_DEPTH)


solid = part.part
